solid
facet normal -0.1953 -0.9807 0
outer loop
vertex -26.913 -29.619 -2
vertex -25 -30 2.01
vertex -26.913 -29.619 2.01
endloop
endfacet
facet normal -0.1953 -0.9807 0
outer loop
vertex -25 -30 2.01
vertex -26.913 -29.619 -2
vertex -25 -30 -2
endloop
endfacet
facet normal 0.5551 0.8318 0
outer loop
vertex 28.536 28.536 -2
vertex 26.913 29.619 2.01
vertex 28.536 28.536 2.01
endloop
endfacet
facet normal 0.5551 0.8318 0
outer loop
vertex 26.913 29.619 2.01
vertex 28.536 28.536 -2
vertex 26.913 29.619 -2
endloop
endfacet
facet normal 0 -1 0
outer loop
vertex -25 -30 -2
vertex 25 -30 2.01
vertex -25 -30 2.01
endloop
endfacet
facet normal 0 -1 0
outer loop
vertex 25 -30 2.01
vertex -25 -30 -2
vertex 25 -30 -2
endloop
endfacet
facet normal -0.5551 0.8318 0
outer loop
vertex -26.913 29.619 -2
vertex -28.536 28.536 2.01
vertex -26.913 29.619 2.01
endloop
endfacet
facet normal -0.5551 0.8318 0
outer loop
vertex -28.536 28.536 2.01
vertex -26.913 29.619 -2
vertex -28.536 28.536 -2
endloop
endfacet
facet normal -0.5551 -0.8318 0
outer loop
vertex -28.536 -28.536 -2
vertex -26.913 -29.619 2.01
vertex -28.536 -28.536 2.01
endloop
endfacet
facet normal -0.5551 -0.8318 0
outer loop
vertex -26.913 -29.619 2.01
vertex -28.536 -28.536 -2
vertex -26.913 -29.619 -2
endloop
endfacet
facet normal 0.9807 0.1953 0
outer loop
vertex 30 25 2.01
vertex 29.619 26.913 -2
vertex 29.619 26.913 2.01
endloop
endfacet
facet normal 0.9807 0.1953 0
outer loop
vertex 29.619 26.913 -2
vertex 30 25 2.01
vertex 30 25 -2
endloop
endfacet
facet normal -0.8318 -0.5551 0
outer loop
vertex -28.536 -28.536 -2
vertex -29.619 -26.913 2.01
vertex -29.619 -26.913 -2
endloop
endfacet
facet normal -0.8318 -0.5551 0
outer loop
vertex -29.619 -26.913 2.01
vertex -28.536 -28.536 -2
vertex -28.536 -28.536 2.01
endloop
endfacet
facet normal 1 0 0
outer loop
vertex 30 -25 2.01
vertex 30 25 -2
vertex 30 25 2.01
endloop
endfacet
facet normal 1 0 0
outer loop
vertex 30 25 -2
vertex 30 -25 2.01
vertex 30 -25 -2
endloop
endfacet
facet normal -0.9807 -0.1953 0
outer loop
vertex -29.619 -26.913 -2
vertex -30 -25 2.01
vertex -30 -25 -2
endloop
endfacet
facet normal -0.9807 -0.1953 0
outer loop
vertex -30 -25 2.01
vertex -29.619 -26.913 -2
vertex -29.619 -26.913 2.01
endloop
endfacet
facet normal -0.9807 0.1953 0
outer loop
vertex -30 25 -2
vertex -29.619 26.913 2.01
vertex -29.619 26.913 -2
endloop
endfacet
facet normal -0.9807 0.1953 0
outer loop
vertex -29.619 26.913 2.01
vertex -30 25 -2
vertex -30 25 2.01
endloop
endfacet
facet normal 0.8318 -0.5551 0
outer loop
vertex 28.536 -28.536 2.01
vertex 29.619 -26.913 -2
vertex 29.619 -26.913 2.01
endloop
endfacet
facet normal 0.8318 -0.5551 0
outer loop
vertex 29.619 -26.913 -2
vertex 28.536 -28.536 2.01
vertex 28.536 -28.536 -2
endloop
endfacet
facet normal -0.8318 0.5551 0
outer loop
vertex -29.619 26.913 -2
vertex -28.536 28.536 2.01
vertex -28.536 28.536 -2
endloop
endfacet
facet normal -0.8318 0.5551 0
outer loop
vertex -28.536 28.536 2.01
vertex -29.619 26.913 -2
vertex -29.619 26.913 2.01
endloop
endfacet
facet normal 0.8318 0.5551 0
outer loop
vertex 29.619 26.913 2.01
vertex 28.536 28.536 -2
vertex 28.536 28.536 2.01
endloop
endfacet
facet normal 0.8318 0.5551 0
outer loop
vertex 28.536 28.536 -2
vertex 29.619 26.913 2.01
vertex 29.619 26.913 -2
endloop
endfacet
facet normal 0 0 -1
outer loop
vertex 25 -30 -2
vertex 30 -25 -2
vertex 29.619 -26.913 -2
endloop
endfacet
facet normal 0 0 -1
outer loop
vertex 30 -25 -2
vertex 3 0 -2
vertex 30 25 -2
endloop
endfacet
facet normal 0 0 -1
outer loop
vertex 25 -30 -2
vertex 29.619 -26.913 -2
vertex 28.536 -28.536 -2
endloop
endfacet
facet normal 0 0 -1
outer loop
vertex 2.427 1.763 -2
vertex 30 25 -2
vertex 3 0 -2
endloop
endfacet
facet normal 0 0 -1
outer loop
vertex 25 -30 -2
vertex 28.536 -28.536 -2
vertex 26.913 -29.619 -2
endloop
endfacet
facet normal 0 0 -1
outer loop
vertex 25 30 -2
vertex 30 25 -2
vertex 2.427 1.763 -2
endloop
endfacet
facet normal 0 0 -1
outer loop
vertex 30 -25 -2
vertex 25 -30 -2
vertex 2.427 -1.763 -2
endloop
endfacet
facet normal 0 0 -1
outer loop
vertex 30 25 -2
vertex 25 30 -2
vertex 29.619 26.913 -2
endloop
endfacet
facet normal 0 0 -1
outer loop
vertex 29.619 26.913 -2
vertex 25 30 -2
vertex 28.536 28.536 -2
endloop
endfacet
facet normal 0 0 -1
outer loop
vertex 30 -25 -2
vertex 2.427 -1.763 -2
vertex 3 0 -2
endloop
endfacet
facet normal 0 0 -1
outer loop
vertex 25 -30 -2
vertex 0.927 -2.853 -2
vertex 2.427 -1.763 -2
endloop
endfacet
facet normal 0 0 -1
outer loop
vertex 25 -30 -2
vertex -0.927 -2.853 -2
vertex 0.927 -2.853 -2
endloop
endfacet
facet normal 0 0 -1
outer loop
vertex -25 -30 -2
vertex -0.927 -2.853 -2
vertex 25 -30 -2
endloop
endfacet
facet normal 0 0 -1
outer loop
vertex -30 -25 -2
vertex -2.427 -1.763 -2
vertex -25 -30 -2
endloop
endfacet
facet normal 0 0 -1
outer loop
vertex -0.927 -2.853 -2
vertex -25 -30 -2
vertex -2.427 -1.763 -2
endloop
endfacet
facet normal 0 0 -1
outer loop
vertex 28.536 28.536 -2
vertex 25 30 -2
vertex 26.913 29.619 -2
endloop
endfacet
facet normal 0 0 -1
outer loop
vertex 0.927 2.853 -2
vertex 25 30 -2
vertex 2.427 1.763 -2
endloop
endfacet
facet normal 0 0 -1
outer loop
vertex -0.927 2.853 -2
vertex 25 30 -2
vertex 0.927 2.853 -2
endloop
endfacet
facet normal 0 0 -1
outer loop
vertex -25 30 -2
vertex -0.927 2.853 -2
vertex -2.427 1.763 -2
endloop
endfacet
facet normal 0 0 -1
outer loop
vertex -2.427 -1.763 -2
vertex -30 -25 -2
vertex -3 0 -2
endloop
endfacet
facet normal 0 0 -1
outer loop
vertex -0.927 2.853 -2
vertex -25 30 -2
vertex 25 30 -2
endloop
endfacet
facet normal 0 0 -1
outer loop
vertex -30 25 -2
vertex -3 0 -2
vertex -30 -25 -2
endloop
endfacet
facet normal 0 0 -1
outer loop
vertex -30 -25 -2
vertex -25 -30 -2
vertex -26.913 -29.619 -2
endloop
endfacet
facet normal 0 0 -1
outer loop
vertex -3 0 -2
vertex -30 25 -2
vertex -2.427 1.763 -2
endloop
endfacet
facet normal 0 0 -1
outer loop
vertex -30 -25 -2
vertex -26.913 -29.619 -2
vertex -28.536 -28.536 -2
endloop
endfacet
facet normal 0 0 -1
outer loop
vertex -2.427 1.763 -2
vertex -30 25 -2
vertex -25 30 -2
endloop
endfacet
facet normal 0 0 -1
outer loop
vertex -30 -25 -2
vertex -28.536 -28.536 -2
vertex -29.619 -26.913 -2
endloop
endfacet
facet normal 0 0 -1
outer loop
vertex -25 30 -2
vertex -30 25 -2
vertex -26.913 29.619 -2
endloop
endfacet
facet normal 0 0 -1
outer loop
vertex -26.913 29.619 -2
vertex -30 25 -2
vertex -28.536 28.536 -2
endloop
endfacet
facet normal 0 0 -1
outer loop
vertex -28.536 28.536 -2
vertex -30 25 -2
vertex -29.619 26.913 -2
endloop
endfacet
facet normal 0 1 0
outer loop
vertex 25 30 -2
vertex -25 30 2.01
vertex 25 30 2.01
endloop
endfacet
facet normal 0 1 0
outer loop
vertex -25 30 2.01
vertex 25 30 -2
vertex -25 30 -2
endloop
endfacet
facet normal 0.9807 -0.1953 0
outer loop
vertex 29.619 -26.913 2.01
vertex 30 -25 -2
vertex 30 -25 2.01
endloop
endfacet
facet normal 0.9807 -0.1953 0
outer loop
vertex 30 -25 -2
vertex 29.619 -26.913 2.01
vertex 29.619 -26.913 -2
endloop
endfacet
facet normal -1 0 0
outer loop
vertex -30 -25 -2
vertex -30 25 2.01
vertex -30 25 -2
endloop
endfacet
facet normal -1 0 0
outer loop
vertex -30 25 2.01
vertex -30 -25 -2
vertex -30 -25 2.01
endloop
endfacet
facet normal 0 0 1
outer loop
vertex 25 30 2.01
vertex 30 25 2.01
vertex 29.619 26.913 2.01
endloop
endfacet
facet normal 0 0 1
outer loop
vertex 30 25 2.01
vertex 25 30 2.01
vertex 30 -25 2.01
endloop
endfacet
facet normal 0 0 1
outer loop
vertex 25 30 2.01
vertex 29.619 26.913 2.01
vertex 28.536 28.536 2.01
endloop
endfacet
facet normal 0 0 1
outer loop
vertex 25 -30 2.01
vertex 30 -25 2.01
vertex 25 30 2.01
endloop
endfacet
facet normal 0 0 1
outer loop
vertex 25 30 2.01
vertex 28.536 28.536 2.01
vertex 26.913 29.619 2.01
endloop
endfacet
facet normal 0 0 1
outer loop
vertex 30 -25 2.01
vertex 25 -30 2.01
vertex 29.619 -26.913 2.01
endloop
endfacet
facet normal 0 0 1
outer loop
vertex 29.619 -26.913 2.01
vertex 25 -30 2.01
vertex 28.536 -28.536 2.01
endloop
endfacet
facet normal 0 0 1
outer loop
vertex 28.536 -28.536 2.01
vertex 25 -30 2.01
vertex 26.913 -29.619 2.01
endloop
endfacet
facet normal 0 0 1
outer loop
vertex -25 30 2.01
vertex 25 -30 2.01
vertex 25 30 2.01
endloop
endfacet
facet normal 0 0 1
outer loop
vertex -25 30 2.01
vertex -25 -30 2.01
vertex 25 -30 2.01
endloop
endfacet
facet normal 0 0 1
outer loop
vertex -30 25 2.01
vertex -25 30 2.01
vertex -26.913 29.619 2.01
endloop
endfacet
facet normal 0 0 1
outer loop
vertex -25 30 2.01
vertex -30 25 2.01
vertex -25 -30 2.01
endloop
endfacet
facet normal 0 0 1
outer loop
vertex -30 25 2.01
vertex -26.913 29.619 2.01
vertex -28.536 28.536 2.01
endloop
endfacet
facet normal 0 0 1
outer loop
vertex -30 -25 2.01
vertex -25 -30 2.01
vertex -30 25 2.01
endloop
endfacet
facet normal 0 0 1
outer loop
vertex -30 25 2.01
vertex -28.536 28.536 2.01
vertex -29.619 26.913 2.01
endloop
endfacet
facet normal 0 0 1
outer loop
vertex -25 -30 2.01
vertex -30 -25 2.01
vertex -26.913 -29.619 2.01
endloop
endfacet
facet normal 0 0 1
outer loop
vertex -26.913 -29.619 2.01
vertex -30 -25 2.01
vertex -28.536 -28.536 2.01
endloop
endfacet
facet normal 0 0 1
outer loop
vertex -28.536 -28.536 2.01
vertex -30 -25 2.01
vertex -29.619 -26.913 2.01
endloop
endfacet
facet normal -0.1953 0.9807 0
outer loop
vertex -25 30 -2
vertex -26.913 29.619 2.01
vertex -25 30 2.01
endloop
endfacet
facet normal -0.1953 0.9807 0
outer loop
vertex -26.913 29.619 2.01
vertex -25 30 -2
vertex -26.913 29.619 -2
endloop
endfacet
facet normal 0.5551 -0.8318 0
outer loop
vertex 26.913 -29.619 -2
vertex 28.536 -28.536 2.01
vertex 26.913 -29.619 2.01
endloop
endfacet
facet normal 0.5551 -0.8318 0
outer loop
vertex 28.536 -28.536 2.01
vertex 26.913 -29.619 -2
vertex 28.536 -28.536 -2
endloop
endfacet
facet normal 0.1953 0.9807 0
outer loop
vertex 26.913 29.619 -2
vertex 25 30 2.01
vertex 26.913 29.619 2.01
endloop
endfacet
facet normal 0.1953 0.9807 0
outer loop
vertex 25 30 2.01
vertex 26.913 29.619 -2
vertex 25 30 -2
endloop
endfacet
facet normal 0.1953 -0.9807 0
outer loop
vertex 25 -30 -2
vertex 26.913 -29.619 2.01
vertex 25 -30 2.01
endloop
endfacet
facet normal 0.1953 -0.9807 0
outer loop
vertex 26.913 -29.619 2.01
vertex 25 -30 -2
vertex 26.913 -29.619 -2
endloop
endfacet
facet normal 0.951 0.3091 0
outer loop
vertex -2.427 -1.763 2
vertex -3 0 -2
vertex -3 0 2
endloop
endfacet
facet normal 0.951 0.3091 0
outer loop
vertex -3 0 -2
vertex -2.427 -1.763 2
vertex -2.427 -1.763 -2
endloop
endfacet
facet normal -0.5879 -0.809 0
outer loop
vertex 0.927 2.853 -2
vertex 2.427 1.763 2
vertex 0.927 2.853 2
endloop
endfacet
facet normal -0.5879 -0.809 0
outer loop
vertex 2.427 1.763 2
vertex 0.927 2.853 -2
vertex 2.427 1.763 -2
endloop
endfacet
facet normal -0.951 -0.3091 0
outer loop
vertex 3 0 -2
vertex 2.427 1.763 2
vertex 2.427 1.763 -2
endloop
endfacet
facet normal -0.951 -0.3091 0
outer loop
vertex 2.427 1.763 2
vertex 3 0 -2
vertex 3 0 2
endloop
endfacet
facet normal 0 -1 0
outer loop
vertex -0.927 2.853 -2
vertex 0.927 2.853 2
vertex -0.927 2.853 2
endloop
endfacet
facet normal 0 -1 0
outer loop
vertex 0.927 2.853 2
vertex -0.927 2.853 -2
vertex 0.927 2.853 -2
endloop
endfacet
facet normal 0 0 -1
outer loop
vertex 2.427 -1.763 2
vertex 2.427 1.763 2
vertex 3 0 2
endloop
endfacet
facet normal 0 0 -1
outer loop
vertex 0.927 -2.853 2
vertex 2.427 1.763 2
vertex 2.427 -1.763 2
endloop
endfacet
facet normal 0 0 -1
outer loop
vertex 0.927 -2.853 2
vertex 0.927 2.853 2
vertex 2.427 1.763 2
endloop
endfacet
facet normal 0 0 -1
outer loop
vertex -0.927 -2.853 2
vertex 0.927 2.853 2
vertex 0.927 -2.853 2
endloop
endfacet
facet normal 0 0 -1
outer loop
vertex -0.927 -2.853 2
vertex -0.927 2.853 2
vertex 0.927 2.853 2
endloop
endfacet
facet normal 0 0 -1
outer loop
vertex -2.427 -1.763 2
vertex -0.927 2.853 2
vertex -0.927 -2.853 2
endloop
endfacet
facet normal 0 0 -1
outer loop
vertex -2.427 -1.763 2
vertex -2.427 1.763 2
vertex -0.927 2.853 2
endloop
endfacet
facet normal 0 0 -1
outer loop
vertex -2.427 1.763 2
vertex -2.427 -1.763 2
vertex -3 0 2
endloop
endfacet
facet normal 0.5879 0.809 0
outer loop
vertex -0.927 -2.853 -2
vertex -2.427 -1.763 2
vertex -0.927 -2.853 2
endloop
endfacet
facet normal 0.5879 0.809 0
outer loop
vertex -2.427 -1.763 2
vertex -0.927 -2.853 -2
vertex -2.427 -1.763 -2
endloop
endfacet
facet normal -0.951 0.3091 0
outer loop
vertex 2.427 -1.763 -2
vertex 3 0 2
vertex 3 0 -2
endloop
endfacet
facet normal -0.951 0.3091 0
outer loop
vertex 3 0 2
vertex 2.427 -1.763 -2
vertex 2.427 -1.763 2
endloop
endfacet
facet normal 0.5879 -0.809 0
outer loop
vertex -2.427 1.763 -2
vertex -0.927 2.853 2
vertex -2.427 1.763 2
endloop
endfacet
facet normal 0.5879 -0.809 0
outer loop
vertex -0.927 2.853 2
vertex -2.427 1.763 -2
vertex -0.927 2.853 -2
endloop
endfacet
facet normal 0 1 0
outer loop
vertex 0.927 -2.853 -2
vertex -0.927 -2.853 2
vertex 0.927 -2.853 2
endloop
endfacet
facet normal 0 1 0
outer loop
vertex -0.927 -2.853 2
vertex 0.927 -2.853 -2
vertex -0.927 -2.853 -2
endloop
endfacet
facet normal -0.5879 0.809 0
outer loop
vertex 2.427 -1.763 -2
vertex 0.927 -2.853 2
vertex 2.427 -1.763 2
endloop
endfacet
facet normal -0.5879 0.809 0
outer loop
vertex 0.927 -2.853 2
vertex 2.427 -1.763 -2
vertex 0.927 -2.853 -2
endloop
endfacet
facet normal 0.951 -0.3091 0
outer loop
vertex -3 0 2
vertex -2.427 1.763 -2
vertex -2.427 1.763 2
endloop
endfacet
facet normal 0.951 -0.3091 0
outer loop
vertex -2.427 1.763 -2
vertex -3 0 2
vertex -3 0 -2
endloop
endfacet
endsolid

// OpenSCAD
// Parameters
plate_size = 60;         // Width and height of the square plate
plate_thickness = 4;     // Thickness of the plate
corner_radius = 5;       // Radius for rounded corners
center_hole_diameter = 6; // Diameter of the central hole
recess_depth = 0.5;      // Depth of the recessed border
recess_margin = 3;       // Margin from the edge for the recessed border

module flat_square_plate_with_center_hole() {
    difference() {
        // Main plate with rounded corners
        minkowski() {
            cube([plate_size - 2*corner_radius, plate_size - 2*corner_radius, plate_thickness], center=true);
            cylinder(r=corner_radius, h=0.01);
        }

        // Central hole
        translate([0, 0, -1])
            cylinder(h=plate_thickness + 2, d=center_hole_diameter, center=true);

        // Recessed border
        translate([0, 0, plate_thickness - recess_depth])
            offset_border();
    }
}

// Recessed border module
module offset_border() {
    linear_extrude(height=recess_depth) {
        offset(delta=-recess_margin)
            offset(delta=recess_margin)
                minkowski() {
                    square([plate_size - 2*corner_radius, plate_size - 2*corner_radius], center=true);
                    circle(r=corner_radius);
                }
    }
}

// Render the component
flat_square_plate_with_center_hole();
